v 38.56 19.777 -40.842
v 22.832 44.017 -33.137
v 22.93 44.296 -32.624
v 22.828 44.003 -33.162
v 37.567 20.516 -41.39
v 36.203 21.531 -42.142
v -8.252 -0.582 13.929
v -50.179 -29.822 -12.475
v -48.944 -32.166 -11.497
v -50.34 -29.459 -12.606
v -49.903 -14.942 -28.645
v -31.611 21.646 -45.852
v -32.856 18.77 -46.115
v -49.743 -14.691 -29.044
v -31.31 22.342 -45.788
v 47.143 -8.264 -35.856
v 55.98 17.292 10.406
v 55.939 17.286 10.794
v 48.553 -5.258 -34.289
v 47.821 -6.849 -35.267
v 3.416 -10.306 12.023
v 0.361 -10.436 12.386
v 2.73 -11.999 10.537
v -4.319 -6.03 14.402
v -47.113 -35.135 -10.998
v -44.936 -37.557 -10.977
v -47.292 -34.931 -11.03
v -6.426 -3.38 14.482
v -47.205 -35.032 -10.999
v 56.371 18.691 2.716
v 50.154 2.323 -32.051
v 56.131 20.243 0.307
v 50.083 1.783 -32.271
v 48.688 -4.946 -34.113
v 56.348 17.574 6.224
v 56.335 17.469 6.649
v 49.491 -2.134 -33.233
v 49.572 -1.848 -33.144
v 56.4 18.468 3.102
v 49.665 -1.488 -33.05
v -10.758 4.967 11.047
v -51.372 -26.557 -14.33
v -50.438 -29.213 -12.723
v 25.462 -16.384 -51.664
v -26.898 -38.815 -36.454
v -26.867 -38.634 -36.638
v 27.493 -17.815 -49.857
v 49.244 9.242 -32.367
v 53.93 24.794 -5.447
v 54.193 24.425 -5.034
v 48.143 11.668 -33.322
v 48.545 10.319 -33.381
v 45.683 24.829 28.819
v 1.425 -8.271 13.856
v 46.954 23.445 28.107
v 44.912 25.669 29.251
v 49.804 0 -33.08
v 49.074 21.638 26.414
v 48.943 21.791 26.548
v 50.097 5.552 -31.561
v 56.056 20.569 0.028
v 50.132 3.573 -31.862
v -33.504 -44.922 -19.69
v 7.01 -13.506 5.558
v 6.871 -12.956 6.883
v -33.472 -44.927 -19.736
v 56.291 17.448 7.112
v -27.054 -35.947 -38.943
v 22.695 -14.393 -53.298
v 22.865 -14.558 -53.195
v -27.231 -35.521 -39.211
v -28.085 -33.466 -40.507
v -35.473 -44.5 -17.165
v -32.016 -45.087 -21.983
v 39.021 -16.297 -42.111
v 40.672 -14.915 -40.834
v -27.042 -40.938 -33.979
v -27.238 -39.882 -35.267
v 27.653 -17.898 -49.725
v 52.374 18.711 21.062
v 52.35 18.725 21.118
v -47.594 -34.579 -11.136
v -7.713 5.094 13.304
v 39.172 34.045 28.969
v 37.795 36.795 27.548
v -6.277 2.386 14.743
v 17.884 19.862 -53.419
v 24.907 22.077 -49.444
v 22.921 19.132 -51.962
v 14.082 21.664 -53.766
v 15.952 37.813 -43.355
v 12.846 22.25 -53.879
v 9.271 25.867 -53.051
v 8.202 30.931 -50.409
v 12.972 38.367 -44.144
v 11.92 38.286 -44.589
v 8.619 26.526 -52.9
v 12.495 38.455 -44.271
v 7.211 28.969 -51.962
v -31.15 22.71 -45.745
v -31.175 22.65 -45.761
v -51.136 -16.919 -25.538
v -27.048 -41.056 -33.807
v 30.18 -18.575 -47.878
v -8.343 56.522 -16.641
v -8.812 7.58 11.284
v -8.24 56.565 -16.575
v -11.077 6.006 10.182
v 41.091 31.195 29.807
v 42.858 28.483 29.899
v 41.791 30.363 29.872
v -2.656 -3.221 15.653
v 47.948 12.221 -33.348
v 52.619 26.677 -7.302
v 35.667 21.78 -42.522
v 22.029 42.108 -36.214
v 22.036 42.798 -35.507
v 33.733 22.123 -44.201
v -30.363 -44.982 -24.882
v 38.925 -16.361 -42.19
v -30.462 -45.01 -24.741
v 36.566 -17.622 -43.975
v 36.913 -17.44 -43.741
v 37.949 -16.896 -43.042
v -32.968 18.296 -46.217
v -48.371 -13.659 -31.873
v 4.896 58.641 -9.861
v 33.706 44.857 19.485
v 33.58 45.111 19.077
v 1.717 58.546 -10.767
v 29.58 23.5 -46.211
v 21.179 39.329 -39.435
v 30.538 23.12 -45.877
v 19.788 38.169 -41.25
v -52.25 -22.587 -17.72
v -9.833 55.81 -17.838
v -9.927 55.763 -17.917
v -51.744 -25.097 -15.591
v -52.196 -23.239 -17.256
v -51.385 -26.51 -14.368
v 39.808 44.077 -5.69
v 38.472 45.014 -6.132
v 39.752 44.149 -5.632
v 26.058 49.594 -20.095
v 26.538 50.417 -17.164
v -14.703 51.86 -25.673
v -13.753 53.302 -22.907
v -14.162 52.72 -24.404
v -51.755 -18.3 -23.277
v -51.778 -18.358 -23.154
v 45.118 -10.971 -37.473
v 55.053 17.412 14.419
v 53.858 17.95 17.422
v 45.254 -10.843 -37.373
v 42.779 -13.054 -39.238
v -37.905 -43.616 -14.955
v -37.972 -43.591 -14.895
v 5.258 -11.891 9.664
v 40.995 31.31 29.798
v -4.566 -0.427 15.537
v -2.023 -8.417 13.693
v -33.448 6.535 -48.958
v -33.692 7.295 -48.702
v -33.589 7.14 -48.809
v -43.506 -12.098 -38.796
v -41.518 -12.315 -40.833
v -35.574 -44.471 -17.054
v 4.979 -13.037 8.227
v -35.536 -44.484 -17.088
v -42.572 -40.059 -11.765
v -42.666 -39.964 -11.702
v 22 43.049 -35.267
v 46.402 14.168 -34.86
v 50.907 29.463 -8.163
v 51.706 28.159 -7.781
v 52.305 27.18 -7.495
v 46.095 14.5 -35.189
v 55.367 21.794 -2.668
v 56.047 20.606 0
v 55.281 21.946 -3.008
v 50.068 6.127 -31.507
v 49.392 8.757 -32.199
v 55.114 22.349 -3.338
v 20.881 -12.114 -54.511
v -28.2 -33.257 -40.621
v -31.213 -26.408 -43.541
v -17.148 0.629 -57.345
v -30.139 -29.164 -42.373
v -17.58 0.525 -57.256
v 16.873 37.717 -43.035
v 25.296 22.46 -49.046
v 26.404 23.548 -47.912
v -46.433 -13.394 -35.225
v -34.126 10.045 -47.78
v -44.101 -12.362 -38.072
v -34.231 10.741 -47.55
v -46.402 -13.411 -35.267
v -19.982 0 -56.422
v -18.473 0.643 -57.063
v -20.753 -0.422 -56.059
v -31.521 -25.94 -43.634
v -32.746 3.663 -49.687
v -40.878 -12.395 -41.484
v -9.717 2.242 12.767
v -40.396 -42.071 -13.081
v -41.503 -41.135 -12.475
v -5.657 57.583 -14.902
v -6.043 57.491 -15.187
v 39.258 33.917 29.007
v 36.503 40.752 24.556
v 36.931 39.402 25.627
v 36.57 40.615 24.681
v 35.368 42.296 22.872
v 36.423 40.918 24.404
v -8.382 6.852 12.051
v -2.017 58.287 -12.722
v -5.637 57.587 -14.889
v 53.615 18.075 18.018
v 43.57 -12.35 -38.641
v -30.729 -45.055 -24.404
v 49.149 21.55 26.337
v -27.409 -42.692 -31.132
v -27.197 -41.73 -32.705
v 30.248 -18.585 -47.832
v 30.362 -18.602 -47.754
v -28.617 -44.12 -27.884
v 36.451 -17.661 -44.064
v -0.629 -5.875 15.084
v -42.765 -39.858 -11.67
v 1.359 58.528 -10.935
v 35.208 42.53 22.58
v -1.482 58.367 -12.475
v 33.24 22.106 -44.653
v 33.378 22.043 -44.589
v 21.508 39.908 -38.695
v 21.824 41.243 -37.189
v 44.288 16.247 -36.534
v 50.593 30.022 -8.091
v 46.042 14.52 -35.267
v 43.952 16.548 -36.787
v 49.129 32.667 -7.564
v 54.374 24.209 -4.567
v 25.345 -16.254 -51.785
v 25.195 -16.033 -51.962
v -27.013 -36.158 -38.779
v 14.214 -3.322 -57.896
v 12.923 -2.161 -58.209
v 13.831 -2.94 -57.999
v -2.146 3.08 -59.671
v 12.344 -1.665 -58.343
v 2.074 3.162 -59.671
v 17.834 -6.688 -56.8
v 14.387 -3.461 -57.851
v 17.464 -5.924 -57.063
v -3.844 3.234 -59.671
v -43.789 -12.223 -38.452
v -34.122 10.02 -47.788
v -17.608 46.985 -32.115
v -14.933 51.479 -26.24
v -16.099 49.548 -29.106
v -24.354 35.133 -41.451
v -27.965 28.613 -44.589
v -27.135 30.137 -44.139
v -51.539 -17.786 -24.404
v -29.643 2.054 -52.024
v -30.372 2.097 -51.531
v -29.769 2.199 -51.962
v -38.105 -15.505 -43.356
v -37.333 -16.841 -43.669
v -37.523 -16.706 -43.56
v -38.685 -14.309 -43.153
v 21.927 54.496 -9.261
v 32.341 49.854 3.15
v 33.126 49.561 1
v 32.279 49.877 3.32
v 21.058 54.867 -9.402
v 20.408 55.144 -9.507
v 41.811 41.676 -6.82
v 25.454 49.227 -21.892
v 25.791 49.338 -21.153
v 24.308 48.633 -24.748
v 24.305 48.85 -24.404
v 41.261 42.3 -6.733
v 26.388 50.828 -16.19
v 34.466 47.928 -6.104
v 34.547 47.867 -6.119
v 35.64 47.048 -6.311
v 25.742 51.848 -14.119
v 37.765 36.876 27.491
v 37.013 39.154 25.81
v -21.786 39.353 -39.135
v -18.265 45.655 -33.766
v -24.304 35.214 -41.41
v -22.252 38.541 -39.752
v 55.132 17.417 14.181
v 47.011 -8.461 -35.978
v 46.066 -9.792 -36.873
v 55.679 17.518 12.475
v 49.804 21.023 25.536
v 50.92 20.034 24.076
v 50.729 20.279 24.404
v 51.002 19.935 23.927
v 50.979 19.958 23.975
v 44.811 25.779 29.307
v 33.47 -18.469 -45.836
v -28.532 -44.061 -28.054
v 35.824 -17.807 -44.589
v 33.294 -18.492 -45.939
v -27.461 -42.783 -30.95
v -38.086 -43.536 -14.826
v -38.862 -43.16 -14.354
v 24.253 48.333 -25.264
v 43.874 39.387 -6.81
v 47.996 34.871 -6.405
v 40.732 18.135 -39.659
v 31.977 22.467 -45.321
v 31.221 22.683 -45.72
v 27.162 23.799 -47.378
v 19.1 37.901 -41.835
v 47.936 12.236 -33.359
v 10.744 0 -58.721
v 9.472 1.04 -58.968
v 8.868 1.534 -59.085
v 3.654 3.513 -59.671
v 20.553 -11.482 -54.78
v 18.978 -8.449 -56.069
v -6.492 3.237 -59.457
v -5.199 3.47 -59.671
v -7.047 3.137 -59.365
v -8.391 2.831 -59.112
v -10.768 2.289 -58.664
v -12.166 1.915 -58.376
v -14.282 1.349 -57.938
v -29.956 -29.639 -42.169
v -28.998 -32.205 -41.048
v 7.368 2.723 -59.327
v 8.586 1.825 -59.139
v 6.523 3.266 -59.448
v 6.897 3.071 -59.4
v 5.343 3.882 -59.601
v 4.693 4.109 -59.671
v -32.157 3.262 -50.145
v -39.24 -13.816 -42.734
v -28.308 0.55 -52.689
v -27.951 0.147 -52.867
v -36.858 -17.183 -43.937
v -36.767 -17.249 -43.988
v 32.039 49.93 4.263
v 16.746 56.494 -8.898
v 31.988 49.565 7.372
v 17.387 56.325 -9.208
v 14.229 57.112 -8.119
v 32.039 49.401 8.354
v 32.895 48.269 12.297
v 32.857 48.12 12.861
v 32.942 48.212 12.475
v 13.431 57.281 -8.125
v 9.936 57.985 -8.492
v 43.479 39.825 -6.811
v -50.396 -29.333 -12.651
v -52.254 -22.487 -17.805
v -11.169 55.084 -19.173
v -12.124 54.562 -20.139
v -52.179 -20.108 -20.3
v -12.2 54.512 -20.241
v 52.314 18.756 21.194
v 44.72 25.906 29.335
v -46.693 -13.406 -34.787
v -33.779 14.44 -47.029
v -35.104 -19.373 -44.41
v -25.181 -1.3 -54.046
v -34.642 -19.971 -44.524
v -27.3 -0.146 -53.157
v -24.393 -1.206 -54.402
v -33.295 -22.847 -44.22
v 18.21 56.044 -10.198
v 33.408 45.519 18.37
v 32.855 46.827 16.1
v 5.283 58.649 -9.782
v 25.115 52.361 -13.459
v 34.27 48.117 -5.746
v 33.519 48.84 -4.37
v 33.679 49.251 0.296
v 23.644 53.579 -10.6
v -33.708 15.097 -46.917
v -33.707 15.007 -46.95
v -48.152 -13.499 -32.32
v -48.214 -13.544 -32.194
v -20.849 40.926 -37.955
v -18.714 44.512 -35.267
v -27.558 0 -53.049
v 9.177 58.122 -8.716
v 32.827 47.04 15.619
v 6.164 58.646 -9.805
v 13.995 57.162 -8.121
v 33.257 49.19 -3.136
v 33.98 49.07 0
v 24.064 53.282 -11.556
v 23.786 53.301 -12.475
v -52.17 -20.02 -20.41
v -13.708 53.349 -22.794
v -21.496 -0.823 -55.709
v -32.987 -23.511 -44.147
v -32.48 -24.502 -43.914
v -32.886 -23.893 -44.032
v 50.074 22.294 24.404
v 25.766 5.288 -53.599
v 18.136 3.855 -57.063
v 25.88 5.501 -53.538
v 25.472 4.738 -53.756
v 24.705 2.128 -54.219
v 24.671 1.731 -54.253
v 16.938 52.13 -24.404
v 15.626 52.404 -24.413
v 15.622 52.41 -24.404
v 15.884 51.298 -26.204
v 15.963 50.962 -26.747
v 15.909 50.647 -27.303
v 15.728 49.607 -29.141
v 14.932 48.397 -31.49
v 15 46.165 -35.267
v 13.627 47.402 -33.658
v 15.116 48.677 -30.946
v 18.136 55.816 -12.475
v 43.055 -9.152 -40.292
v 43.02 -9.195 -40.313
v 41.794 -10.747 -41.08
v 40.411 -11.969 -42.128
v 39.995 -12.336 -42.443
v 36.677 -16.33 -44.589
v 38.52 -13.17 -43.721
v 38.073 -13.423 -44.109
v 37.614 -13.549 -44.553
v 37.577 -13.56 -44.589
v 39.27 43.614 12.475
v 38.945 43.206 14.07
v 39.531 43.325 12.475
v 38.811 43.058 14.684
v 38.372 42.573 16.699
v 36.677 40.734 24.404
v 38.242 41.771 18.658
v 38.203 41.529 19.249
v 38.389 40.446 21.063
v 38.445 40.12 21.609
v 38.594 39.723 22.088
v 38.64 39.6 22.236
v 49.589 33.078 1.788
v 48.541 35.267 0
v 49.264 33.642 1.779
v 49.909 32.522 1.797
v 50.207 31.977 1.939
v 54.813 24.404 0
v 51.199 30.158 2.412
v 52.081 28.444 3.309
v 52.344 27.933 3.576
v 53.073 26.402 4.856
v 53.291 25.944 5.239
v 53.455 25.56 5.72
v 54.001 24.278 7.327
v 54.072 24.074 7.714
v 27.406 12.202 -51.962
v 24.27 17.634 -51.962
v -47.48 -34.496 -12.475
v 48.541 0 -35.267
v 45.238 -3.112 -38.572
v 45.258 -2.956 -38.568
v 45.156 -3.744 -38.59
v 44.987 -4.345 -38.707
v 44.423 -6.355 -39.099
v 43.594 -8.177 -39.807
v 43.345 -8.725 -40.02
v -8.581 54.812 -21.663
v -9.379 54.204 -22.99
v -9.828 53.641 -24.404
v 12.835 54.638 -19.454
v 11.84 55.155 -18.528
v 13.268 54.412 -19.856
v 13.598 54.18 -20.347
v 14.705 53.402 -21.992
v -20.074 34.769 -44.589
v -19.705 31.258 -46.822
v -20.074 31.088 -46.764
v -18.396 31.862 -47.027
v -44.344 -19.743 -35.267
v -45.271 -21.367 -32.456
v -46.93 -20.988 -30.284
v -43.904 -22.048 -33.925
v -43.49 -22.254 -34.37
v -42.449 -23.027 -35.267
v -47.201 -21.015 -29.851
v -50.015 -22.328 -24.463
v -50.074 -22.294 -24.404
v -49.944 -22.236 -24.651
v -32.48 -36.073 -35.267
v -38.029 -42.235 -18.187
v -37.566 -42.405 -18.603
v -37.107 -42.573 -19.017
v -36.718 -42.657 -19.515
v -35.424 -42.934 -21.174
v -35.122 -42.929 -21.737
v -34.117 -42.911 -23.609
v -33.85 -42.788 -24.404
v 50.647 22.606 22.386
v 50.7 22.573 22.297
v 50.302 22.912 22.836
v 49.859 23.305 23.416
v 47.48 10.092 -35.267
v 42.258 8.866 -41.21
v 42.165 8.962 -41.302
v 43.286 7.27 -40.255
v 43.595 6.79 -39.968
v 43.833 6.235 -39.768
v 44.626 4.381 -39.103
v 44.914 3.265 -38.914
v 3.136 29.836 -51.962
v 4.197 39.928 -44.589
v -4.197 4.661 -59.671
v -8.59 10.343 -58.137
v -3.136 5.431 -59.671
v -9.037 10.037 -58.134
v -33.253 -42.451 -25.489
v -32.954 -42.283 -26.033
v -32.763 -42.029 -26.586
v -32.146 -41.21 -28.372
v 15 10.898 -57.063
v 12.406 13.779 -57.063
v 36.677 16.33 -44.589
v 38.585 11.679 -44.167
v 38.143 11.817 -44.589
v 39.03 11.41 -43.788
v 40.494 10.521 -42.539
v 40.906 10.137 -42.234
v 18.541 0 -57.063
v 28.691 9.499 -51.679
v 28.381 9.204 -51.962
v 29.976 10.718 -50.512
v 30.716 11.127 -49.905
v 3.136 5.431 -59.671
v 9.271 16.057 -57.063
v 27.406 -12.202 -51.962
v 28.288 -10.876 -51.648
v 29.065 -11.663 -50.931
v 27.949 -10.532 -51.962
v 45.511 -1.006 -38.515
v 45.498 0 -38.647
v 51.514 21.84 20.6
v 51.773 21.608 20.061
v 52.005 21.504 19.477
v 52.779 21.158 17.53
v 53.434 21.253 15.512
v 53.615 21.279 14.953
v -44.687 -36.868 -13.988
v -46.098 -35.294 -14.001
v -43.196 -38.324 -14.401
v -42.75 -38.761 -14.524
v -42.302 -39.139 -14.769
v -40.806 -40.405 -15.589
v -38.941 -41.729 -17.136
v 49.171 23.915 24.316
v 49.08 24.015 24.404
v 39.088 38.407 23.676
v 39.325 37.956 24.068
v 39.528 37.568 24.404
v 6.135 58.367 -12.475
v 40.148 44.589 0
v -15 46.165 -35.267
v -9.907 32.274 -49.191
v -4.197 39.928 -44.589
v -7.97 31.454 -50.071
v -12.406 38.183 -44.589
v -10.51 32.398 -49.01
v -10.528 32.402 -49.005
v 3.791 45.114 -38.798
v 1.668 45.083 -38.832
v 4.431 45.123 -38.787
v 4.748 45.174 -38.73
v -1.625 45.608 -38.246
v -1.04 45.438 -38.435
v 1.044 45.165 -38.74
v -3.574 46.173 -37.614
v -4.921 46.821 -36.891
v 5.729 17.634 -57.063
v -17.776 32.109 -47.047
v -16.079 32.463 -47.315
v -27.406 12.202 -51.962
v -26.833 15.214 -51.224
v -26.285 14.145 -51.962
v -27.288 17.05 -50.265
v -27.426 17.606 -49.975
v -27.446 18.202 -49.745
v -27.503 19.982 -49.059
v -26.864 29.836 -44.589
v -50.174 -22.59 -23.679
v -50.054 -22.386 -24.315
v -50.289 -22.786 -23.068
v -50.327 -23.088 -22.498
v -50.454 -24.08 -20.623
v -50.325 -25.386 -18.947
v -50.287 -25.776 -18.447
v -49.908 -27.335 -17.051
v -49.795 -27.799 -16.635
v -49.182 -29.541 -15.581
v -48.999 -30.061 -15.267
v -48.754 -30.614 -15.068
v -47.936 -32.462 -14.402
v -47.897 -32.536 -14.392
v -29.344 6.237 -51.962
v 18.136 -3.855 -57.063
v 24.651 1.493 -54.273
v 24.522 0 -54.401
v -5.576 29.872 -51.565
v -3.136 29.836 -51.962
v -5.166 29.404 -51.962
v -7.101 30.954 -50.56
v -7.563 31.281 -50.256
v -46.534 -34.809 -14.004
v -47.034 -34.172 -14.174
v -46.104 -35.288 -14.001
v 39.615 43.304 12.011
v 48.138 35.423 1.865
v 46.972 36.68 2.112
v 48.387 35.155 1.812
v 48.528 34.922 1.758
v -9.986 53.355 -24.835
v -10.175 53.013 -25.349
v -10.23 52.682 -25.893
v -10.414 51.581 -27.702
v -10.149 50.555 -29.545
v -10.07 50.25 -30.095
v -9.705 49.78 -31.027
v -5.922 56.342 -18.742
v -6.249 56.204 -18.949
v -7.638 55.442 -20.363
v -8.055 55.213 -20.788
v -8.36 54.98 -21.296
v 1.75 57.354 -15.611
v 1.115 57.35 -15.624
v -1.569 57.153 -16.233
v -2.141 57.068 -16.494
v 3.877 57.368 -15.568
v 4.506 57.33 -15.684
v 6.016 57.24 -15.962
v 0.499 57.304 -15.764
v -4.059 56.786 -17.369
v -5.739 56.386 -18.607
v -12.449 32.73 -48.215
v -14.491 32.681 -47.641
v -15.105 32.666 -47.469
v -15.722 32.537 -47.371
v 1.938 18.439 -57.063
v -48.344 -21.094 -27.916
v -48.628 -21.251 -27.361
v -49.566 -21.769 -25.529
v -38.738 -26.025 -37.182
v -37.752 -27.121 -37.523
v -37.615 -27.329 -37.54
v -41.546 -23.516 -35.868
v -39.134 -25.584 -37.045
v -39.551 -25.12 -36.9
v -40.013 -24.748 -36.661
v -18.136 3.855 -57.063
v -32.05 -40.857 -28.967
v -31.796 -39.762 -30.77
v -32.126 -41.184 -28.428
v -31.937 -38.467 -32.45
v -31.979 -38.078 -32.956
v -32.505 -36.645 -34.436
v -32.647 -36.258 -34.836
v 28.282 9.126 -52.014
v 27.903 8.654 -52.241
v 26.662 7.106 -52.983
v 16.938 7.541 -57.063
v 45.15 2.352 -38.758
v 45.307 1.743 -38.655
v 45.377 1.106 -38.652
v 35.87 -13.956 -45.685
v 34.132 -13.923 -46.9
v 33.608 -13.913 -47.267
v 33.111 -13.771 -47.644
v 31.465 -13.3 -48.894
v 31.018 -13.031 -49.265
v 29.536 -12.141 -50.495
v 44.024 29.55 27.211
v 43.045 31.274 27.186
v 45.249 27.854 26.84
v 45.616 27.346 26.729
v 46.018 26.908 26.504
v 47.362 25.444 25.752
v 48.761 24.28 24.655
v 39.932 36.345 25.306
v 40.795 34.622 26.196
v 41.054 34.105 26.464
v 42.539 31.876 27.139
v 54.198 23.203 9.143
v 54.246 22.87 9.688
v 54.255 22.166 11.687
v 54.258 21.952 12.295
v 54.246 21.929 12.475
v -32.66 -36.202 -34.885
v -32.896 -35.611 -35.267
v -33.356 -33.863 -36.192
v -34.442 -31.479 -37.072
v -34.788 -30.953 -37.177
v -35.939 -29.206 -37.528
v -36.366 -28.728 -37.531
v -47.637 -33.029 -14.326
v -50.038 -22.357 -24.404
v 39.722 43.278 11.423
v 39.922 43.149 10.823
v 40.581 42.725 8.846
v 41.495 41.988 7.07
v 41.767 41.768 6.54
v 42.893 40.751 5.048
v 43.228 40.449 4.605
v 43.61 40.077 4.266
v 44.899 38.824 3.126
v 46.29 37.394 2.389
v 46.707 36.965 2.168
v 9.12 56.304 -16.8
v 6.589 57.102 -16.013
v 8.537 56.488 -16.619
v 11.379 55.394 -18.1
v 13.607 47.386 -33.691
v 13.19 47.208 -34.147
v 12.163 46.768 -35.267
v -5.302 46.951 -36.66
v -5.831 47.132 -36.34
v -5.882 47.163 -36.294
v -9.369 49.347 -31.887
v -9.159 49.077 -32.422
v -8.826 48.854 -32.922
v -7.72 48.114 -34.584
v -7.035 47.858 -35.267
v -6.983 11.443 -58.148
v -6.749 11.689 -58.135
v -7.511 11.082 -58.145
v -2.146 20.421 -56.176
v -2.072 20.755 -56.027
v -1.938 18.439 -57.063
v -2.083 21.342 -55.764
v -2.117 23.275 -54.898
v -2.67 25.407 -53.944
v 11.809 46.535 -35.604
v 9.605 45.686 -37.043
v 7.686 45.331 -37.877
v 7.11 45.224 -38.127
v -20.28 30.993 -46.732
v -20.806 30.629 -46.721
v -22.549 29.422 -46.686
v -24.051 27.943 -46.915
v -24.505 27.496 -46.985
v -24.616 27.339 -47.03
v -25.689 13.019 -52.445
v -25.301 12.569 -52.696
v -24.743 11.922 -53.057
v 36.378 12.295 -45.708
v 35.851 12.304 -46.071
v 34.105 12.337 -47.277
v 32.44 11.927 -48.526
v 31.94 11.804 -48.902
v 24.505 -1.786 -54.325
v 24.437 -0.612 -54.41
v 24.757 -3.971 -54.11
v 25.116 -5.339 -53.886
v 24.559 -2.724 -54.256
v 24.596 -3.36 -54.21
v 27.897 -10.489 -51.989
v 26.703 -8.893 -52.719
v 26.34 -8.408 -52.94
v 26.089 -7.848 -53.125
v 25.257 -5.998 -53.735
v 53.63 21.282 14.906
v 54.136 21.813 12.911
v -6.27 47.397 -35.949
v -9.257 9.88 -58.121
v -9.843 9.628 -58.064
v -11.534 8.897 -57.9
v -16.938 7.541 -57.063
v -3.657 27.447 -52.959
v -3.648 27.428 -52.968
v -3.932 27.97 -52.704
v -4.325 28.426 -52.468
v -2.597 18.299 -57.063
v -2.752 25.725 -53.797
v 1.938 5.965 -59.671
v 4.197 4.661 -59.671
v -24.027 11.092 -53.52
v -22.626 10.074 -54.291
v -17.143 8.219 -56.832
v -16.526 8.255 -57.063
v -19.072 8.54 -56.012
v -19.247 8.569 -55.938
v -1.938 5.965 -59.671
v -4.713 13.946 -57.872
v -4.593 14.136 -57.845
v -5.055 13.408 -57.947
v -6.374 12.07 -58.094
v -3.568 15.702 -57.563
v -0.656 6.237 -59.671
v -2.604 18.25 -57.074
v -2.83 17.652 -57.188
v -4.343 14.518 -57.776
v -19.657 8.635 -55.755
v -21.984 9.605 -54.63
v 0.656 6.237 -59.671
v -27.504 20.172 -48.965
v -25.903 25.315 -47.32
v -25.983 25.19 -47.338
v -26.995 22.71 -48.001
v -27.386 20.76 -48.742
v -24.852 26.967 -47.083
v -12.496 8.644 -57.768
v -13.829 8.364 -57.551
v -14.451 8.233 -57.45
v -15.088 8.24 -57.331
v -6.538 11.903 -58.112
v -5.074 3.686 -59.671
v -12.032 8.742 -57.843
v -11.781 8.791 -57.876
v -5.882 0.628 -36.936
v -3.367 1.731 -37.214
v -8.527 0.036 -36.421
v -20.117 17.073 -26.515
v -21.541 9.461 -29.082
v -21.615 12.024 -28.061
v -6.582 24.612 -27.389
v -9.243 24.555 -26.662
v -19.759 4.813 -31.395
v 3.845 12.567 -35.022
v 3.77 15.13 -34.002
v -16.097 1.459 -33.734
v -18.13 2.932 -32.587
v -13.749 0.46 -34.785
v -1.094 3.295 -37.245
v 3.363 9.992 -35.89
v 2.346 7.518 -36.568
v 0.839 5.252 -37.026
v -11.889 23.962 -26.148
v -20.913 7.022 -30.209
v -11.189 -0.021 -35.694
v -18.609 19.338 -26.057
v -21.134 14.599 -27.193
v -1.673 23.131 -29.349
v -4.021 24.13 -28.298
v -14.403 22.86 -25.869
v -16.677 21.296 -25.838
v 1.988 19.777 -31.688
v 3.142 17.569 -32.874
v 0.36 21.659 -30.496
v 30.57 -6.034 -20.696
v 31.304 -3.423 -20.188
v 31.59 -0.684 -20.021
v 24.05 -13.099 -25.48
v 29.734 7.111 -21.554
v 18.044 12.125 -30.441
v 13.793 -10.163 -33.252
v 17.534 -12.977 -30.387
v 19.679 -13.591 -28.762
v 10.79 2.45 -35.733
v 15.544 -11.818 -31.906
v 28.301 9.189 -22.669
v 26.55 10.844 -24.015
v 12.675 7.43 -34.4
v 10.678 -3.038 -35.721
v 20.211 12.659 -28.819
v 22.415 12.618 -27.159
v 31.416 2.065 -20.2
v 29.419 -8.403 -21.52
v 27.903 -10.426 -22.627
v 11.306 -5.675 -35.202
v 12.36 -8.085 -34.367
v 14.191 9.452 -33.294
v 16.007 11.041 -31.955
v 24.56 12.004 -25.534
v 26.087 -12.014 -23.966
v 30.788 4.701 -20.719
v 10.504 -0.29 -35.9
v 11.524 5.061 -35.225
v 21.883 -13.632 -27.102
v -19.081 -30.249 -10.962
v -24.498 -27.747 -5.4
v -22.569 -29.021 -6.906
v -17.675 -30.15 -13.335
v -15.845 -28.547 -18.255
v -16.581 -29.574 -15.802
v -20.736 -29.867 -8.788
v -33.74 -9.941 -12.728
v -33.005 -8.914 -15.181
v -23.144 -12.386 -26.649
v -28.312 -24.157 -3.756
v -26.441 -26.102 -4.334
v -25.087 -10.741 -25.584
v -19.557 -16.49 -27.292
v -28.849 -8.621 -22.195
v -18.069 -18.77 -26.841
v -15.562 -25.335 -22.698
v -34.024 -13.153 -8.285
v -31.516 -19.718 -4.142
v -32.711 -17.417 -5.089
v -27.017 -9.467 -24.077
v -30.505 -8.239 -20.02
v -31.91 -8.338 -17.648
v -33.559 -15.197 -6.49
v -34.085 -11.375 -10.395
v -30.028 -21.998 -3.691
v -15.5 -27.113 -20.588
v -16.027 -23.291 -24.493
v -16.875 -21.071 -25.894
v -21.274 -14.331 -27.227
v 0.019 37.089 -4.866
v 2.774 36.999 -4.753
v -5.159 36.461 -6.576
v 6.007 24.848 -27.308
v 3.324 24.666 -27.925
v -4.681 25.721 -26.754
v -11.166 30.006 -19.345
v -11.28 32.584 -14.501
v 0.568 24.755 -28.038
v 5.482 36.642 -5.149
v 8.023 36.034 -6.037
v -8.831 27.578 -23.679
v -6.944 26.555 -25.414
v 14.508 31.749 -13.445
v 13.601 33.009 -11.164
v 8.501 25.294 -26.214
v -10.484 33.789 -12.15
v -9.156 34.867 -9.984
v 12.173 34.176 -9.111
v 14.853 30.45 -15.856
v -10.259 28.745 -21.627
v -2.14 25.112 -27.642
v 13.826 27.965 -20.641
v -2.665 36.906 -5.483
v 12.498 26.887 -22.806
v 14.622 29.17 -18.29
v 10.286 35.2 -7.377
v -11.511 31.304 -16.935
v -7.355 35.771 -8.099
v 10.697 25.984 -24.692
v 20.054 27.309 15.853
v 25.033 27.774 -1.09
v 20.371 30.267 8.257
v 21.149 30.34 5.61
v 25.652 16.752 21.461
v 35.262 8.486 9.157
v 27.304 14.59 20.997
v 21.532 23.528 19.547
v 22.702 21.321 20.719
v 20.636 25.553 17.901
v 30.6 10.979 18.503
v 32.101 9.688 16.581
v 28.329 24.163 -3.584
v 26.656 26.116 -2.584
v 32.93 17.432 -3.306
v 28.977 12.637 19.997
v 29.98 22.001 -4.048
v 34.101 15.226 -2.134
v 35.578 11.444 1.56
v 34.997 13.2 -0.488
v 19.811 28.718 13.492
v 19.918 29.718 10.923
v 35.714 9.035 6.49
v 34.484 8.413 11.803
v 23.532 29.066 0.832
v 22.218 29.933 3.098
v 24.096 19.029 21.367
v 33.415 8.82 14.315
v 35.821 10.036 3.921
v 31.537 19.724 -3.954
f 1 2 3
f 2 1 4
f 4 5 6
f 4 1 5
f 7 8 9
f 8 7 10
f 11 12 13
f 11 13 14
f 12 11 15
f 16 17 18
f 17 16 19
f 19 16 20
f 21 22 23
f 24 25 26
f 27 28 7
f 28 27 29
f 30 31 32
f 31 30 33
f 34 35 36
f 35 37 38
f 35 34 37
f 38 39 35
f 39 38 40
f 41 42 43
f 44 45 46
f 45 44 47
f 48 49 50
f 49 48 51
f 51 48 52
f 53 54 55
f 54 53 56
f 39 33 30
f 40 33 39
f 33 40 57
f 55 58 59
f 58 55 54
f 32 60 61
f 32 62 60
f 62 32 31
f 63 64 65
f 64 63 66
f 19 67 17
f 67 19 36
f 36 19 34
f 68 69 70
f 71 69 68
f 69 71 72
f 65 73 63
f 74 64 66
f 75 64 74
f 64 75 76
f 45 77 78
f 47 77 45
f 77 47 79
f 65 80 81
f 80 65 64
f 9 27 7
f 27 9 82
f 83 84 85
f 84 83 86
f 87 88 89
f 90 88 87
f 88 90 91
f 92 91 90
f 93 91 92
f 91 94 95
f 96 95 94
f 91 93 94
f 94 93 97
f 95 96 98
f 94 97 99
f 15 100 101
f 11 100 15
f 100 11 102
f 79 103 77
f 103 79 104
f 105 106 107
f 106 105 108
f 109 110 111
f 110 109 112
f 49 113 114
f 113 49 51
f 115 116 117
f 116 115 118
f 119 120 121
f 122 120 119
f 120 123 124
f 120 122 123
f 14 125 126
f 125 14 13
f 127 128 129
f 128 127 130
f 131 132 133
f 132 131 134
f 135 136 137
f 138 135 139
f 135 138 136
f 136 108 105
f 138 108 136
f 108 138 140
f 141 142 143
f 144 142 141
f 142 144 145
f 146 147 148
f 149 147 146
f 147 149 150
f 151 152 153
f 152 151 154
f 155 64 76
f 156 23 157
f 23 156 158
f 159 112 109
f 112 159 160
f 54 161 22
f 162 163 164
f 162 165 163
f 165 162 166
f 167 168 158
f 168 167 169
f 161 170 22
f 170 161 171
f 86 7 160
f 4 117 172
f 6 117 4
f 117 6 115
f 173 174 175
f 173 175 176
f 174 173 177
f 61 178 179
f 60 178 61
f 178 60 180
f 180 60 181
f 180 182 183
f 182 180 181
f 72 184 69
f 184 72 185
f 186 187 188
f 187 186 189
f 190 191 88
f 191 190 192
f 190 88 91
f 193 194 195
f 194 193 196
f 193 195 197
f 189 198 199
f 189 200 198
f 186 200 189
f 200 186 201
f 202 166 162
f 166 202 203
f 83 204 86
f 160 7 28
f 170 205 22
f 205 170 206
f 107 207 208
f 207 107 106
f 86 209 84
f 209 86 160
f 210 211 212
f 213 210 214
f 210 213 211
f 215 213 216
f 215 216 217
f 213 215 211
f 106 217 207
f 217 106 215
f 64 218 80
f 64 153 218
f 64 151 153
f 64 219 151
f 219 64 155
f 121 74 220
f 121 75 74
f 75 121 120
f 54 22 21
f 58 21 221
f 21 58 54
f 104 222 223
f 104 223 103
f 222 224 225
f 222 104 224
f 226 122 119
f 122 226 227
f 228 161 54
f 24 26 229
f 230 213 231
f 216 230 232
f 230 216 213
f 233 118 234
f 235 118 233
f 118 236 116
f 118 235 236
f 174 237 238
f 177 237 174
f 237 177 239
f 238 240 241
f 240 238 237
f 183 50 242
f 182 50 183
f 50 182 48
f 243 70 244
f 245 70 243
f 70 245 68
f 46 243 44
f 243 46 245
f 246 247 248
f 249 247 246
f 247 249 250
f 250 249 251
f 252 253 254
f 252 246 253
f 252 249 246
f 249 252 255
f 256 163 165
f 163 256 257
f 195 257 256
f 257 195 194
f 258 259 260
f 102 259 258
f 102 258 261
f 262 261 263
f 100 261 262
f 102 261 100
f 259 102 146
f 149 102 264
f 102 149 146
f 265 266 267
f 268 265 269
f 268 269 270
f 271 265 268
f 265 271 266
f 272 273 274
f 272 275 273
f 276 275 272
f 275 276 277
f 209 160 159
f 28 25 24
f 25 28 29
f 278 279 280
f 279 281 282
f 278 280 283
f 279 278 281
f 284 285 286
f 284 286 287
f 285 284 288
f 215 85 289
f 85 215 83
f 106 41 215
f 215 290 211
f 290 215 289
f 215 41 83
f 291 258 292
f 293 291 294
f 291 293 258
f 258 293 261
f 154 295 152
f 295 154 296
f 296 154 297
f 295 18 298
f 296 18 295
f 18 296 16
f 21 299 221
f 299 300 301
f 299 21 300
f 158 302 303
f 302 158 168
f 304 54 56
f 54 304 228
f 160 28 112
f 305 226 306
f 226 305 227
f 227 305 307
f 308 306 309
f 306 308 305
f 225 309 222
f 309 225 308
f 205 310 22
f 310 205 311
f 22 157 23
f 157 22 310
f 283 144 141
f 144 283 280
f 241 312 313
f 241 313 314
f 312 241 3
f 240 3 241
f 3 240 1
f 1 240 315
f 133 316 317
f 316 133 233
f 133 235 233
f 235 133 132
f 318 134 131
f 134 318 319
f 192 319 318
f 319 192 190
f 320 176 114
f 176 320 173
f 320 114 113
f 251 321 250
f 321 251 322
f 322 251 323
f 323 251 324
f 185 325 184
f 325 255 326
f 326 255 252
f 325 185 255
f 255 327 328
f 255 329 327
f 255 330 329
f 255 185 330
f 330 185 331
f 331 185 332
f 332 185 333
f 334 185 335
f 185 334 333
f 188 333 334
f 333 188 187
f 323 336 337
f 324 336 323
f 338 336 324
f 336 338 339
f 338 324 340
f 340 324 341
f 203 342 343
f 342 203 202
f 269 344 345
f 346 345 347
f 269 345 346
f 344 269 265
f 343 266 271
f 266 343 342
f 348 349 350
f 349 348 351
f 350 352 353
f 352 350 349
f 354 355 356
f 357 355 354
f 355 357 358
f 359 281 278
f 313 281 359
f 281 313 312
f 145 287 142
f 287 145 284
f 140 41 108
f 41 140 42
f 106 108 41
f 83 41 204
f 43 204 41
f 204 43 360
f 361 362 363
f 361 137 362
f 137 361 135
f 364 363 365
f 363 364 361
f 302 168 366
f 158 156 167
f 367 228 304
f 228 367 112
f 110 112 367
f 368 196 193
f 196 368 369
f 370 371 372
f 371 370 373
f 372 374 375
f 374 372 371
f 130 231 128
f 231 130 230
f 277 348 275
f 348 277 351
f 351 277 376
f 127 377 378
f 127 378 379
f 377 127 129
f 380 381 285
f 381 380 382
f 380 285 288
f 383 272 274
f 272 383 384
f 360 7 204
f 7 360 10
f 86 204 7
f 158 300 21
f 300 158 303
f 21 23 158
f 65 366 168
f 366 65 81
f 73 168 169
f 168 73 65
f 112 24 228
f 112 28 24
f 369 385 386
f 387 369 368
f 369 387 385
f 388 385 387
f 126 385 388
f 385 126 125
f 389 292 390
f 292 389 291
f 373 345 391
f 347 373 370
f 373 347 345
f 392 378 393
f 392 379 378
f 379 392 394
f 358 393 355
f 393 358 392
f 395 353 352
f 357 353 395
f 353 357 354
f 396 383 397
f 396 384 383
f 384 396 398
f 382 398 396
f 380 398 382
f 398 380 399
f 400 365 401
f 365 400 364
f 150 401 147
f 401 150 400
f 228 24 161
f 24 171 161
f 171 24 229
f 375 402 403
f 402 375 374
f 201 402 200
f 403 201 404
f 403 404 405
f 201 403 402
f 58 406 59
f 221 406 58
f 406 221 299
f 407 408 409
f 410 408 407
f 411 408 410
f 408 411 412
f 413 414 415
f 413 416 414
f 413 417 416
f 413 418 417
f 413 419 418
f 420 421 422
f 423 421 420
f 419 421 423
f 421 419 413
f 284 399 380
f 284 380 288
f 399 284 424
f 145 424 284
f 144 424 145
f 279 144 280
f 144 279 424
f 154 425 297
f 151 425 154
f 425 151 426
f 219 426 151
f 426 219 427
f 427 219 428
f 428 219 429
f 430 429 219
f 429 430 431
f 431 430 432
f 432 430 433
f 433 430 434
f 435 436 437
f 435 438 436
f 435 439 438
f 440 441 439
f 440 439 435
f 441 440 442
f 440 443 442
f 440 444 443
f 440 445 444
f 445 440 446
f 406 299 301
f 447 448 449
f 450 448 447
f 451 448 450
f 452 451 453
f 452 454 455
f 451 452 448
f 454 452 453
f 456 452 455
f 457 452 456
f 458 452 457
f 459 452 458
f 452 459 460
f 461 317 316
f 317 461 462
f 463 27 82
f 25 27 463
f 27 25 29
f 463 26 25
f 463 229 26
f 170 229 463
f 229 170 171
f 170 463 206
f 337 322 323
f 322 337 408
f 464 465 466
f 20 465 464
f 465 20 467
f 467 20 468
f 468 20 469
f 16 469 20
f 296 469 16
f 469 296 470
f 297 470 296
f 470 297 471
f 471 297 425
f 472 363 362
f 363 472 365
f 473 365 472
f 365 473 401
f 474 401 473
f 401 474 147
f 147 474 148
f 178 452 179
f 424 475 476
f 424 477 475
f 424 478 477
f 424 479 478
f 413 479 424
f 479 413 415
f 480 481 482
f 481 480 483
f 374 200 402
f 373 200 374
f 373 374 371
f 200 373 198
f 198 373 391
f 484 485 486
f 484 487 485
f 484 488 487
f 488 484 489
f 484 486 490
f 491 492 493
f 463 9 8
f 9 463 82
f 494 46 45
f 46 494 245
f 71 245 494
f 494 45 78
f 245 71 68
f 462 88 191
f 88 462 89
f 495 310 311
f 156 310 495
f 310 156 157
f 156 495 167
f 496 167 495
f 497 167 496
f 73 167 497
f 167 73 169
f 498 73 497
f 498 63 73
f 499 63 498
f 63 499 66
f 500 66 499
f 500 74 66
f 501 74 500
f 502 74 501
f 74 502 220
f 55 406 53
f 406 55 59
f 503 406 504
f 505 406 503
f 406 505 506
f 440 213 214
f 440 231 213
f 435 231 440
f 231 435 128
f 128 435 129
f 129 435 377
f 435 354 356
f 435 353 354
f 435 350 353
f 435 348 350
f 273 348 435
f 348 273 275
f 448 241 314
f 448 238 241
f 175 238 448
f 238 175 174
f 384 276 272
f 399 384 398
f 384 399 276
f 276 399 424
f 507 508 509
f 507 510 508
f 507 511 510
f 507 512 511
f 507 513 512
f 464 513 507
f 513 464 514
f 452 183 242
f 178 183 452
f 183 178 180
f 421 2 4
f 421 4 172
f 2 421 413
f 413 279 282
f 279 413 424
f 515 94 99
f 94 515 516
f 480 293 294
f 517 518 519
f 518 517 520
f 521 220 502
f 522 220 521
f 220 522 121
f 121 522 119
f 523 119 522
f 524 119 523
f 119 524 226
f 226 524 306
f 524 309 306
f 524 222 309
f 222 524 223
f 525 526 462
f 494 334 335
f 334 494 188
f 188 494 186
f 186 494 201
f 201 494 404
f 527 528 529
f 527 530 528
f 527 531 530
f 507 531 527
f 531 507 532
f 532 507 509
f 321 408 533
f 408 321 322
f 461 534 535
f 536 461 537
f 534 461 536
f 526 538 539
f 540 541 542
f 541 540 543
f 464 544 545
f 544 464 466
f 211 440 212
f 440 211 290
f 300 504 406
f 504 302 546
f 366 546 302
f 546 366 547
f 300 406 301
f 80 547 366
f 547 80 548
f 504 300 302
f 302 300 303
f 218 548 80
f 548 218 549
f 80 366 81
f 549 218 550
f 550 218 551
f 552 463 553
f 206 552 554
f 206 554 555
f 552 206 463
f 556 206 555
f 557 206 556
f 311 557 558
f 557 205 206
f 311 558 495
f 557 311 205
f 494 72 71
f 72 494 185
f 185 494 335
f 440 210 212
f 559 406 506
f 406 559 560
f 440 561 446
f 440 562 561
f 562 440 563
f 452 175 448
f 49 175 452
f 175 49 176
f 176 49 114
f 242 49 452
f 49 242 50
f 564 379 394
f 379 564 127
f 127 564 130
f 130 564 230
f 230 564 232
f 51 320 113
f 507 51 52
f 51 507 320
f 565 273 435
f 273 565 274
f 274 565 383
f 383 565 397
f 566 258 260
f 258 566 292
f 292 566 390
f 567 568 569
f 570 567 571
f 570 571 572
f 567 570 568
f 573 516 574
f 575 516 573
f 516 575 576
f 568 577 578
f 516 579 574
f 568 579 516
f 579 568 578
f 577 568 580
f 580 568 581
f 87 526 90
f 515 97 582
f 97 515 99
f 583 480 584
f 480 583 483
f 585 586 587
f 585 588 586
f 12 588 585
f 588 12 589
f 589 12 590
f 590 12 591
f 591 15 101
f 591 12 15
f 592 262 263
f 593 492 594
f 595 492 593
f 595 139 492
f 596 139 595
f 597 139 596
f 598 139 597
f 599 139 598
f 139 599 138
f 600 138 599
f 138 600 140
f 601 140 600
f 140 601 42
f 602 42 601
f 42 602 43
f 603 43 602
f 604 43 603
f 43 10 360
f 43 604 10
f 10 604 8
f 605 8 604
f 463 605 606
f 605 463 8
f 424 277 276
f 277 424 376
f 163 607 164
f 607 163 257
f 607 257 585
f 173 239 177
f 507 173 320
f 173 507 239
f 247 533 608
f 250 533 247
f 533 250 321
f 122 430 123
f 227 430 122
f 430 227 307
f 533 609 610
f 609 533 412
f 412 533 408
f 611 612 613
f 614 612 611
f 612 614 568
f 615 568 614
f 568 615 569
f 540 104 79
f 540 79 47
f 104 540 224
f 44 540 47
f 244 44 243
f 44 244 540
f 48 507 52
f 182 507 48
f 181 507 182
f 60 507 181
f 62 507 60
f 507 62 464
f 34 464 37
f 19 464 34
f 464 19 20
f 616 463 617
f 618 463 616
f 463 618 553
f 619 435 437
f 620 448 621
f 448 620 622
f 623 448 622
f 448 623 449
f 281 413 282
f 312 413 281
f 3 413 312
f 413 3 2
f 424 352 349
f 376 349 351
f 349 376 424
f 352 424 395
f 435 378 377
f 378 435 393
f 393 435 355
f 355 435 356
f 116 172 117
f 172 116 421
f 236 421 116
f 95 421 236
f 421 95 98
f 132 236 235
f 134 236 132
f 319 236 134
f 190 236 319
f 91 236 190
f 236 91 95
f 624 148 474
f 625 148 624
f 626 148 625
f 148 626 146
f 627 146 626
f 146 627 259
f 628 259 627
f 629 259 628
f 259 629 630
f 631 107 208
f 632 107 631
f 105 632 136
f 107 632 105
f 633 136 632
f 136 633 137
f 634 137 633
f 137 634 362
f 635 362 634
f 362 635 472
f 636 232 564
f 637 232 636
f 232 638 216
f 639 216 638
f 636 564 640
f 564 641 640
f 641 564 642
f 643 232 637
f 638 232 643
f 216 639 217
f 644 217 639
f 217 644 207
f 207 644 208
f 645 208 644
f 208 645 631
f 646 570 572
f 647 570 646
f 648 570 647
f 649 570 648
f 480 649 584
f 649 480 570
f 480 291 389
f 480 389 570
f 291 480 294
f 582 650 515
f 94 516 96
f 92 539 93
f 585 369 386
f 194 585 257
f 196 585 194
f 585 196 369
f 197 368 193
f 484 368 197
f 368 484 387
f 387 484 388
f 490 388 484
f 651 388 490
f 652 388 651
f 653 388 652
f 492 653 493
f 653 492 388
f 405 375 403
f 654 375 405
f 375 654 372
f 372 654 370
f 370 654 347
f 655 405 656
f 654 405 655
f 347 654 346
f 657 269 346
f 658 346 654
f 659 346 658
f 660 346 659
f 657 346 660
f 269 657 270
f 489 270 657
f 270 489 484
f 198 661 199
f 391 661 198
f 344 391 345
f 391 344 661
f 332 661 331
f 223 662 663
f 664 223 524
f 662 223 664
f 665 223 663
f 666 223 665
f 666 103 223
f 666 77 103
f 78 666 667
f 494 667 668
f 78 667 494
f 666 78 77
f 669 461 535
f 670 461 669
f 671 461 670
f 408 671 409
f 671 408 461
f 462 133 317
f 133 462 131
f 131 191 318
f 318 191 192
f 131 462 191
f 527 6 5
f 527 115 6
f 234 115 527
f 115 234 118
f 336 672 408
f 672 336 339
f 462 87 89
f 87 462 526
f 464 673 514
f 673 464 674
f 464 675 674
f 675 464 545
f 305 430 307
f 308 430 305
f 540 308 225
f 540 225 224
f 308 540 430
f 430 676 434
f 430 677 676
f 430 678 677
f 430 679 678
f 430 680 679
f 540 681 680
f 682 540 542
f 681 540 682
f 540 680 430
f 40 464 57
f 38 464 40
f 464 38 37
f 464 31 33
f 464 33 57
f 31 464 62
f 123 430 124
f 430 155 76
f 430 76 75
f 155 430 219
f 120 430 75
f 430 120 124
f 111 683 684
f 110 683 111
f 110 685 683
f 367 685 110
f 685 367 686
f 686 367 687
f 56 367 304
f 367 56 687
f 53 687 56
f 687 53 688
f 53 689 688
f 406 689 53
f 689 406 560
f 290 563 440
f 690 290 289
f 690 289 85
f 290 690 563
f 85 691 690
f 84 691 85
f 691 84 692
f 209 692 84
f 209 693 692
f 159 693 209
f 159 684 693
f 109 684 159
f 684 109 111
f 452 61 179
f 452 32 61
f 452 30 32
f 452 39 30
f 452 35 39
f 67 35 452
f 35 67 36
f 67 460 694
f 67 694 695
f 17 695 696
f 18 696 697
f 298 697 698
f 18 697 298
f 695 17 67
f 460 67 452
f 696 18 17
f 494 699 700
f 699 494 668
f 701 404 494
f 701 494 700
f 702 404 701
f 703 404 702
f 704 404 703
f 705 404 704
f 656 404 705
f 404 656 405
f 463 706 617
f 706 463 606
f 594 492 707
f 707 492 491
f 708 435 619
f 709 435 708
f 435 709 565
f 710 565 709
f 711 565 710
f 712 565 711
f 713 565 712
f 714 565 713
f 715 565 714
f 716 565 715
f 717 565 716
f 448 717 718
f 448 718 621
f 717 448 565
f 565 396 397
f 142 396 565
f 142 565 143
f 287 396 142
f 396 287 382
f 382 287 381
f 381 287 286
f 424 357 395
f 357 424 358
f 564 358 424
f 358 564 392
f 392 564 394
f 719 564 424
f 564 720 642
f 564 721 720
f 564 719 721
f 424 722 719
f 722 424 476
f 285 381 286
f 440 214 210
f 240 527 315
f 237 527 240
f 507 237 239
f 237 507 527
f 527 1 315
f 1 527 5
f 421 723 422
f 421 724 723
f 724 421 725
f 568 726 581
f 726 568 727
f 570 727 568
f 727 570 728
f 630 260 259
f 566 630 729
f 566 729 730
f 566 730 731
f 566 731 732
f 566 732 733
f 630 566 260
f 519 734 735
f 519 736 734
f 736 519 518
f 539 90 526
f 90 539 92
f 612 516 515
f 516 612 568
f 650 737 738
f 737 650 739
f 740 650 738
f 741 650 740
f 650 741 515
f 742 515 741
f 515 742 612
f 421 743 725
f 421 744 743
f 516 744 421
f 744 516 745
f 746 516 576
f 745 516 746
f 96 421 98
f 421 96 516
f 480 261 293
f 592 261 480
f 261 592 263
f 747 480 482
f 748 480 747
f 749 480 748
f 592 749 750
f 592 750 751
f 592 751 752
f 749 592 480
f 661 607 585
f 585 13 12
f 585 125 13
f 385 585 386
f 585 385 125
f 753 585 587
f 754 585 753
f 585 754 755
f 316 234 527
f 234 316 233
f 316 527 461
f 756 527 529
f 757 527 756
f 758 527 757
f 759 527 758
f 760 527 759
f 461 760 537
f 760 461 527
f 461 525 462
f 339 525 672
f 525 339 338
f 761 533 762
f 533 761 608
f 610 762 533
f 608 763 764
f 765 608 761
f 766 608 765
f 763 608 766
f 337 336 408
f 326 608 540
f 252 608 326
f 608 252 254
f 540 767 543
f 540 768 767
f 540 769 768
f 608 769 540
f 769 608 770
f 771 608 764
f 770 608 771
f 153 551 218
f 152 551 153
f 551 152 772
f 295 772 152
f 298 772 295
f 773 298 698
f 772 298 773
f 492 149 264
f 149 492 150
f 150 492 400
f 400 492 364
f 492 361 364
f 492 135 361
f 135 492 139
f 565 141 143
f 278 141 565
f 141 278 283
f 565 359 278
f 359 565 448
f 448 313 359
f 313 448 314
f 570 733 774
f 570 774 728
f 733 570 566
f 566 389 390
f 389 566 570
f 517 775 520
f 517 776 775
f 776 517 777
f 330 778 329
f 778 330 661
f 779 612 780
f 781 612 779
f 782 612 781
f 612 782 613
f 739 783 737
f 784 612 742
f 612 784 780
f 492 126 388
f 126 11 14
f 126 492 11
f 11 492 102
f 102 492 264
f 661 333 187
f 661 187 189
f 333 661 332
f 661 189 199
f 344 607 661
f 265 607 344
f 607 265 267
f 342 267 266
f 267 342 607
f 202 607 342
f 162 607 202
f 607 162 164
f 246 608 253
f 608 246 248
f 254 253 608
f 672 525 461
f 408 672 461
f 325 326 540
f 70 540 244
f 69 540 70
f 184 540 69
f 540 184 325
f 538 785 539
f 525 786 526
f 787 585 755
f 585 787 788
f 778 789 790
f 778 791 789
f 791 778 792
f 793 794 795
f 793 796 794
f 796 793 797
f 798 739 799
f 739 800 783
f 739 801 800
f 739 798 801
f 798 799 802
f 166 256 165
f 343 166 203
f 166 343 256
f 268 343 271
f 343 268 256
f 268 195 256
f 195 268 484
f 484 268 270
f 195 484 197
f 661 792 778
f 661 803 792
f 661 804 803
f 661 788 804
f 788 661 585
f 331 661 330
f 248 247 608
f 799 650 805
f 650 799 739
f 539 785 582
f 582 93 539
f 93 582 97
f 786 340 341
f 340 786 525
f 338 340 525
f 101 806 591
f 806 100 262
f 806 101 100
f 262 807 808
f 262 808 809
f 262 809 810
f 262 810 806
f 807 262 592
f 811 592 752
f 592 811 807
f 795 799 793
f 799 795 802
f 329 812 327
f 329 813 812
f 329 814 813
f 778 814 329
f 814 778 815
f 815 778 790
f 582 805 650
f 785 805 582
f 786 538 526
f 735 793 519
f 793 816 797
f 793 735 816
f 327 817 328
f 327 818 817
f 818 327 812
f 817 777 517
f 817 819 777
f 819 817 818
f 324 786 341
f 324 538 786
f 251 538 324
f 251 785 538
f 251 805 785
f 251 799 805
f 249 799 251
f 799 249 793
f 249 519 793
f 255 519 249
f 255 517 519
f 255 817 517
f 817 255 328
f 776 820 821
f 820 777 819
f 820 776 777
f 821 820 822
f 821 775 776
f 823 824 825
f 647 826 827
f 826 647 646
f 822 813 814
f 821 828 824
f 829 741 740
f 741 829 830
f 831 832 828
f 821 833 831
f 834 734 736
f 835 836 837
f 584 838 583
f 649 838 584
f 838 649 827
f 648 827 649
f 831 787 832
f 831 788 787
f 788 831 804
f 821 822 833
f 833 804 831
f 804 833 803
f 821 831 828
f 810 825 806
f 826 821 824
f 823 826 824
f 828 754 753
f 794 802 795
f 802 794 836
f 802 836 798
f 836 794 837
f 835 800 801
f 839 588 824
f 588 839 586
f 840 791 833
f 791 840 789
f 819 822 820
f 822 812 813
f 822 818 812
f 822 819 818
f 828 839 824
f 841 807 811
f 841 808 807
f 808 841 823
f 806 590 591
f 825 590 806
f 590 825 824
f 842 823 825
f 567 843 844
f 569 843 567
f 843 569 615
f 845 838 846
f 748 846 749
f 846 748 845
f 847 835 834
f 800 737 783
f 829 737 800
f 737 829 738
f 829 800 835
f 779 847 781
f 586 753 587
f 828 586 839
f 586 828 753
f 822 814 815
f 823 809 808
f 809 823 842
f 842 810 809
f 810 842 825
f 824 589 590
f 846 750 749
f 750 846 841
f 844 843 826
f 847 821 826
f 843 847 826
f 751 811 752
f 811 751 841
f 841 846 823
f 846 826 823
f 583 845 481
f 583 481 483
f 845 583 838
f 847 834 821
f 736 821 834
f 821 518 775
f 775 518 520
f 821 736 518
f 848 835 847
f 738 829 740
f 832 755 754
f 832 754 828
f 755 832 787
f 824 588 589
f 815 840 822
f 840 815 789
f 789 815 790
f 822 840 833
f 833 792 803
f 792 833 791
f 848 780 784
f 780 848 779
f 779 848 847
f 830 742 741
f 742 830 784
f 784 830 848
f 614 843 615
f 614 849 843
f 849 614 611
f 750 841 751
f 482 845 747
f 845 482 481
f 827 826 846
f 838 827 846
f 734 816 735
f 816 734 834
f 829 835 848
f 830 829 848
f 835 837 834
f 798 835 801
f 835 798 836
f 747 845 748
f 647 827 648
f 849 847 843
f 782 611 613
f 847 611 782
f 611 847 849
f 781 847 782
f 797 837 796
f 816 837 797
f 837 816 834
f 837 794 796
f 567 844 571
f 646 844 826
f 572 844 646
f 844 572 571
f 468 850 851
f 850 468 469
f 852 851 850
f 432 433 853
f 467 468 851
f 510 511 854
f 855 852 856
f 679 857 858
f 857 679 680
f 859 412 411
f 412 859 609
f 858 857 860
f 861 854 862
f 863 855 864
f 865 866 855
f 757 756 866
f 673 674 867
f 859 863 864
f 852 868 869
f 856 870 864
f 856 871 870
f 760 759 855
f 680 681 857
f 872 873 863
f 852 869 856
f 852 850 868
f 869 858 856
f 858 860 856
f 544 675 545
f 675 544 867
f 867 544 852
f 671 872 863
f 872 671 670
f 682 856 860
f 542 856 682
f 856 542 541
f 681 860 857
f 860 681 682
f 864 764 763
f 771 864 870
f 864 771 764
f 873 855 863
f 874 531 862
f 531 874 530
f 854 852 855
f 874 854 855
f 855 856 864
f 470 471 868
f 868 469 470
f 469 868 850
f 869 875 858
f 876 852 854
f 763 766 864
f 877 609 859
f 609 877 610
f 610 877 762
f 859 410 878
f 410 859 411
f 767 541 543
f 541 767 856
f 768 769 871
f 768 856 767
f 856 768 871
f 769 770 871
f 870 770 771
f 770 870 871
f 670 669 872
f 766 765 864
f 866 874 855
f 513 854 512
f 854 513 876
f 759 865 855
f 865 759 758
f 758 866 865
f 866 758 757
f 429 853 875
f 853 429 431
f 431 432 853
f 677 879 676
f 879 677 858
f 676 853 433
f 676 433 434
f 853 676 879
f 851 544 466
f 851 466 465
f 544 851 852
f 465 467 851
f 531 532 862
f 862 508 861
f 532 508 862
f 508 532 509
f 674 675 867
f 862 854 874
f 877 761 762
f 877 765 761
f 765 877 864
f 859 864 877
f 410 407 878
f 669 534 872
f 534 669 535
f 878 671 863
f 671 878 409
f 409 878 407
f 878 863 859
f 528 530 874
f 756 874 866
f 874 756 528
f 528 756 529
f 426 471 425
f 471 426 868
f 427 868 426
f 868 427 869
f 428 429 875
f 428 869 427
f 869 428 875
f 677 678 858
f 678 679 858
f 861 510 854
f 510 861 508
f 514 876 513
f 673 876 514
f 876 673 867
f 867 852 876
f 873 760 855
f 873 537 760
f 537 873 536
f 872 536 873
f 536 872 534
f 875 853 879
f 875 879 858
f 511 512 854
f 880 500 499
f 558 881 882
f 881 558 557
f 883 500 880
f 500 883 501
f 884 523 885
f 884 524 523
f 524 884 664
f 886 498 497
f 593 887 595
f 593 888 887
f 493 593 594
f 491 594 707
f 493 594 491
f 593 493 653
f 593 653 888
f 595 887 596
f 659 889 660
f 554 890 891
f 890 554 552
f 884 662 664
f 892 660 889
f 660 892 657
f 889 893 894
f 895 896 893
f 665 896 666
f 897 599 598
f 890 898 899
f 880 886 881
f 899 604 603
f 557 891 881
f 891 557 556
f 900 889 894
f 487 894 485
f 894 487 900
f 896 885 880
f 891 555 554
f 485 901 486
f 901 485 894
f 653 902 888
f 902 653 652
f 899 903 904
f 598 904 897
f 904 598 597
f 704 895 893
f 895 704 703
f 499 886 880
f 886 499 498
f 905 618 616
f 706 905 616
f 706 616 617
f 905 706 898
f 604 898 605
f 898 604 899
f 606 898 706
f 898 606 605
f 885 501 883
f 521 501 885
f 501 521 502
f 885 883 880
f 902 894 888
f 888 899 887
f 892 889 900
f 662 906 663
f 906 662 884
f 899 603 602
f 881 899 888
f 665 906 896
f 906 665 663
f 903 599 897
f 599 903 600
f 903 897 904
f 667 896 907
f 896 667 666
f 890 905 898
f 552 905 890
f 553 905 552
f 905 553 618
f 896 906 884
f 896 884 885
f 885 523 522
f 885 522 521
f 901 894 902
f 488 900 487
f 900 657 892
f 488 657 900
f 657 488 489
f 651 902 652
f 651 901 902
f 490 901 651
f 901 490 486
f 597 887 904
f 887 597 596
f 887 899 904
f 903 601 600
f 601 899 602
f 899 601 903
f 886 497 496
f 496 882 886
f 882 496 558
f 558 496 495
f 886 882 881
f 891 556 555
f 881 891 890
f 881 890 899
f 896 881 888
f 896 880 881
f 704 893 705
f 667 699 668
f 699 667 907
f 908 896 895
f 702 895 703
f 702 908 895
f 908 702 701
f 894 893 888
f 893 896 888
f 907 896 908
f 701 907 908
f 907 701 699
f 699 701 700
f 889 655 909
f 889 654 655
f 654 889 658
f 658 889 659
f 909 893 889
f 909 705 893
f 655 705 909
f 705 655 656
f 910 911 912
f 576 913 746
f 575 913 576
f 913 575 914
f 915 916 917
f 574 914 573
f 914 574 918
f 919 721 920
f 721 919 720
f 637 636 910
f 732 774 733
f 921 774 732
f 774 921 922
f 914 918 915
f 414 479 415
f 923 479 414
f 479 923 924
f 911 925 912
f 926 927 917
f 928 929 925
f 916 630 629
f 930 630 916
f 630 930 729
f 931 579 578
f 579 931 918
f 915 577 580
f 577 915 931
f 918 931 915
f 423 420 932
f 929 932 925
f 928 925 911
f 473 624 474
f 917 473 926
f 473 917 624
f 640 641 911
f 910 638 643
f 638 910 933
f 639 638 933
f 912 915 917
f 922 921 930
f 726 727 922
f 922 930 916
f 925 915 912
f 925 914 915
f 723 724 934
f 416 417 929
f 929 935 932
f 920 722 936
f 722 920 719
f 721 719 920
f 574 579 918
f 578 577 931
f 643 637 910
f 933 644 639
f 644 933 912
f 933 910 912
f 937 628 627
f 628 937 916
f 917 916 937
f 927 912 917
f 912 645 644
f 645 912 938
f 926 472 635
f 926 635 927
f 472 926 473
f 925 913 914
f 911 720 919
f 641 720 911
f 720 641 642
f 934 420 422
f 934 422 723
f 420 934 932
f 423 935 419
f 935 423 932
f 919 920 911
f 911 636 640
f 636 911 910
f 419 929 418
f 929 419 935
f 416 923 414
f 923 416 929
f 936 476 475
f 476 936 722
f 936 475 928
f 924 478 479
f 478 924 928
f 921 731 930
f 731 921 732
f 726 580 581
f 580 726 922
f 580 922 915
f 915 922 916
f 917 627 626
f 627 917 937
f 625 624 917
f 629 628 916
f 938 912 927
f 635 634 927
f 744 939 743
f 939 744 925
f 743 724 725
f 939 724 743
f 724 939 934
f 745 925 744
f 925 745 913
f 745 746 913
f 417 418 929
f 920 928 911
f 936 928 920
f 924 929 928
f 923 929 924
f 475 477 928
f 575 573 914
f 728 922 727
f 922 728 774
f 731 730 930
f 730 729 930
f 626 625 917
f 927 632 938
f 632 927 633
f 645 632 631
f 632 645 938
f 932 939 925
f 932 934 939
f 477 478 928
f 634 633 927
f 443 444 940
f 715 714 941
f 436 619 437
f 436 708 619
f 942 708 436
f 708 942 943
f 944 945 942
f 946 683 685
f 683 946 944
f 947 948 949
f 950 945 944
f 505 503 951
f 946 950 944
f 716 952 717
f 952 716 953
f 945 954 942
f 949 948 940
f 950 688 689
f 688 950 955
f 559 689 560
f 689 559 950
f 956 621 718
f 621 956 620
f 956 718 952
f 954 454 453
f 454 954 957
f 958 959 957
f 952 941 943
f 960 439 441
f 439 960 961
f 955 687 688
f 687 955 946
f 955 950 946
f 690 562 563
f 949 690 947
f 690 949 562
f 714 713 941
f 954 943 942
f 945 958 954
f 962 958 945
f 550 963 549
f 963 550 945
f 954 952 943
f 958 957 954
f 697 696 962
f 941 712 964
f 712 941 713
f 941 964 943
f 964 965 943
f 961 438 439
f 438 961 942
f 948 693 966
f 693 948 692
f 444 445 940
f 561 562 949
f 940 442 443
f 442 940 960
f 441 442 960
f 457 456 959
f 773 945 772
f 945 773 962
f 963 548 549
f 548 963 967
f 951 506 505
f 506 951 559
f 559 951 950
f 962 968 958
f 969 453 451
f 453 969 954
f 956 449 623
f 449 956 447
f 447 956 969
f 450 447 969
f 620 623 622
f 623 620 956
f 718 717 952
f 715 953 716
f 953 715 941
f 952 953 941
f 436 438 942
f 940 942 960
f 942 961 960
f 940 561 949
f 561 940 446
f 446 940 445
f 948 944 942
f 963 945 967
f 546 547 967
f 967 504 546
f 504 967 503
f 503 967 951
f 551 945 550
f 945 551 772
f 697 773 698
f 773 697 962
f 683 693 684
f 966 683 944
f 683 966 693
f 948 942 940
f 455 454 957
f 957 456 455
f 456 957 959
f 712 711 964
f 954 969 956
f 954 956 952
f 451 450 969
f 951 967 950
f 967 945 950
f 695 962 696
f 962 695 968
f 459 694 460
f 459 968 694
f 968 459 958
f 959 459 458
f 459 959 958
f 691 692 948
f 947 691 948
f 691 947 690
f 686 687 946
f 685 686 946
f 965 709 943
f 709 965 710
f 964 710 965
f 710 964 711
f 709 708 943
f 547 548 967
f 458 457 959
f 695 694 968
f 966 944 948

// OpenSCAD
difference() {
	intersection() {
		hull() {
			rotate(a = -104.5489988397, v = [-0.9006572166, 0.3545577349, 0.0000000000]) {
				rotate(a = -90.0000000000, v = [-0.7326678405, 0.6805863909, 0.0000000000]) {
					cylinder(h = 60, r = 16.2000000000);
				}
			}
			rotate(a = -104.5489988397, v = [-0.9006572166, 0.3545577349, 0.0000000000]) {
				rotate(a = -90.0000000000, v = [-0.9748021579, -0.2230711837, 0.0000000000]) {
					cylinder(h = 60, r = 16.2000000000);
				}
			}
			rotate(a = -104.5489988397, v = [-0.9006572166, 0.3545577349, 0.0000000000]) {
				rotate(a = -30.9572897354, v = [-0.0507367166, 0.5118906968, 0.0000000000]) {
					cylinder(h = 60, r = 16.2000000000);
				}
			}
			rotate(a = -104.5489988397, v = [-0.9006572166, 0.3545577349, 0.0000000000]) {
				rotate(a = -133.9329822888, v = [-0.5157722115, 0.5025909794, 0.0000000000]) {
					cylinder(h = 60, r = 16.2000000000);
				}
			}
			rotate(a = -104.5489988397, v = [-0.9006572166, 0.3545577349, 0.0000000000]) {
				rotate(a = -147.4470048335, v = [-0.1610165687, -0.5134229984, 0.0000000000]) {
					cylinder(h = 60, r = 16.2000000000);
				}
			}
		}
		sphere(r = 60);
	}
	union() {
		rotate(a = -104.5489988397, v = [-0.9006572166, 0.3545577349, 0.0000000000]) {
			rotate(a = -90.0000000000, v = [-0.7326678405, 0.6805863909, 0.0000000000]) {
				translate(v = [0, 0, 35]) {
					cylinder(h = 100, r = 13.2000000000);
				}
			}
		}
		rotate(a = -104.5489988397, v = [-0.9006572166, 0.3545577349, 0.0000000000]) {
			rotate(a = -90.0000000000, v = [-0.9748021579, -0.2230711837, 0.0000000000]) {
				translate(v = [0, 0, 35]) {
					cylinder(h = 100, r = 13.2000000000);
				}
			}
		}
		rotate(a = -104.5489988397, v = [-0.9006572166, 0.3545577349, 0.0000000000]) {
			rotate(a = -30.9572897354, v = [-0.0507367166, 0.5118906968, 0.0000000000]) {
				translate(v = [0, 0, 35]) {
					cylinder(h = 100, r = 13.2000000000);
				}
			}
		}
		rotate(a = -104.5489988397, v = [-0.9006572166, 0.3545577349, 0.0000000000]) {
			rotate(a = -133.9329822888, v = [-0.5157722115, 0.5025909794, 0.0000000000]) {
				translate(v = [0, 0, 35]) {
					cylinder(h = 100, r = 13.2000000000);
				}
			}
		}
		rotate(a = -104.5489988397, v = [-0.9006572166, 0.3545577349, 0.0000000000]) {
			rotate(a = -147.4470048335, v = [-0.1610165687, -0.5134229984, 0.0000000000]) {
				translate(v = [0, 0, 35]) {
					cylinder(h = 100, r = 13.2000000000);
				}
			}
		}
	}
}
